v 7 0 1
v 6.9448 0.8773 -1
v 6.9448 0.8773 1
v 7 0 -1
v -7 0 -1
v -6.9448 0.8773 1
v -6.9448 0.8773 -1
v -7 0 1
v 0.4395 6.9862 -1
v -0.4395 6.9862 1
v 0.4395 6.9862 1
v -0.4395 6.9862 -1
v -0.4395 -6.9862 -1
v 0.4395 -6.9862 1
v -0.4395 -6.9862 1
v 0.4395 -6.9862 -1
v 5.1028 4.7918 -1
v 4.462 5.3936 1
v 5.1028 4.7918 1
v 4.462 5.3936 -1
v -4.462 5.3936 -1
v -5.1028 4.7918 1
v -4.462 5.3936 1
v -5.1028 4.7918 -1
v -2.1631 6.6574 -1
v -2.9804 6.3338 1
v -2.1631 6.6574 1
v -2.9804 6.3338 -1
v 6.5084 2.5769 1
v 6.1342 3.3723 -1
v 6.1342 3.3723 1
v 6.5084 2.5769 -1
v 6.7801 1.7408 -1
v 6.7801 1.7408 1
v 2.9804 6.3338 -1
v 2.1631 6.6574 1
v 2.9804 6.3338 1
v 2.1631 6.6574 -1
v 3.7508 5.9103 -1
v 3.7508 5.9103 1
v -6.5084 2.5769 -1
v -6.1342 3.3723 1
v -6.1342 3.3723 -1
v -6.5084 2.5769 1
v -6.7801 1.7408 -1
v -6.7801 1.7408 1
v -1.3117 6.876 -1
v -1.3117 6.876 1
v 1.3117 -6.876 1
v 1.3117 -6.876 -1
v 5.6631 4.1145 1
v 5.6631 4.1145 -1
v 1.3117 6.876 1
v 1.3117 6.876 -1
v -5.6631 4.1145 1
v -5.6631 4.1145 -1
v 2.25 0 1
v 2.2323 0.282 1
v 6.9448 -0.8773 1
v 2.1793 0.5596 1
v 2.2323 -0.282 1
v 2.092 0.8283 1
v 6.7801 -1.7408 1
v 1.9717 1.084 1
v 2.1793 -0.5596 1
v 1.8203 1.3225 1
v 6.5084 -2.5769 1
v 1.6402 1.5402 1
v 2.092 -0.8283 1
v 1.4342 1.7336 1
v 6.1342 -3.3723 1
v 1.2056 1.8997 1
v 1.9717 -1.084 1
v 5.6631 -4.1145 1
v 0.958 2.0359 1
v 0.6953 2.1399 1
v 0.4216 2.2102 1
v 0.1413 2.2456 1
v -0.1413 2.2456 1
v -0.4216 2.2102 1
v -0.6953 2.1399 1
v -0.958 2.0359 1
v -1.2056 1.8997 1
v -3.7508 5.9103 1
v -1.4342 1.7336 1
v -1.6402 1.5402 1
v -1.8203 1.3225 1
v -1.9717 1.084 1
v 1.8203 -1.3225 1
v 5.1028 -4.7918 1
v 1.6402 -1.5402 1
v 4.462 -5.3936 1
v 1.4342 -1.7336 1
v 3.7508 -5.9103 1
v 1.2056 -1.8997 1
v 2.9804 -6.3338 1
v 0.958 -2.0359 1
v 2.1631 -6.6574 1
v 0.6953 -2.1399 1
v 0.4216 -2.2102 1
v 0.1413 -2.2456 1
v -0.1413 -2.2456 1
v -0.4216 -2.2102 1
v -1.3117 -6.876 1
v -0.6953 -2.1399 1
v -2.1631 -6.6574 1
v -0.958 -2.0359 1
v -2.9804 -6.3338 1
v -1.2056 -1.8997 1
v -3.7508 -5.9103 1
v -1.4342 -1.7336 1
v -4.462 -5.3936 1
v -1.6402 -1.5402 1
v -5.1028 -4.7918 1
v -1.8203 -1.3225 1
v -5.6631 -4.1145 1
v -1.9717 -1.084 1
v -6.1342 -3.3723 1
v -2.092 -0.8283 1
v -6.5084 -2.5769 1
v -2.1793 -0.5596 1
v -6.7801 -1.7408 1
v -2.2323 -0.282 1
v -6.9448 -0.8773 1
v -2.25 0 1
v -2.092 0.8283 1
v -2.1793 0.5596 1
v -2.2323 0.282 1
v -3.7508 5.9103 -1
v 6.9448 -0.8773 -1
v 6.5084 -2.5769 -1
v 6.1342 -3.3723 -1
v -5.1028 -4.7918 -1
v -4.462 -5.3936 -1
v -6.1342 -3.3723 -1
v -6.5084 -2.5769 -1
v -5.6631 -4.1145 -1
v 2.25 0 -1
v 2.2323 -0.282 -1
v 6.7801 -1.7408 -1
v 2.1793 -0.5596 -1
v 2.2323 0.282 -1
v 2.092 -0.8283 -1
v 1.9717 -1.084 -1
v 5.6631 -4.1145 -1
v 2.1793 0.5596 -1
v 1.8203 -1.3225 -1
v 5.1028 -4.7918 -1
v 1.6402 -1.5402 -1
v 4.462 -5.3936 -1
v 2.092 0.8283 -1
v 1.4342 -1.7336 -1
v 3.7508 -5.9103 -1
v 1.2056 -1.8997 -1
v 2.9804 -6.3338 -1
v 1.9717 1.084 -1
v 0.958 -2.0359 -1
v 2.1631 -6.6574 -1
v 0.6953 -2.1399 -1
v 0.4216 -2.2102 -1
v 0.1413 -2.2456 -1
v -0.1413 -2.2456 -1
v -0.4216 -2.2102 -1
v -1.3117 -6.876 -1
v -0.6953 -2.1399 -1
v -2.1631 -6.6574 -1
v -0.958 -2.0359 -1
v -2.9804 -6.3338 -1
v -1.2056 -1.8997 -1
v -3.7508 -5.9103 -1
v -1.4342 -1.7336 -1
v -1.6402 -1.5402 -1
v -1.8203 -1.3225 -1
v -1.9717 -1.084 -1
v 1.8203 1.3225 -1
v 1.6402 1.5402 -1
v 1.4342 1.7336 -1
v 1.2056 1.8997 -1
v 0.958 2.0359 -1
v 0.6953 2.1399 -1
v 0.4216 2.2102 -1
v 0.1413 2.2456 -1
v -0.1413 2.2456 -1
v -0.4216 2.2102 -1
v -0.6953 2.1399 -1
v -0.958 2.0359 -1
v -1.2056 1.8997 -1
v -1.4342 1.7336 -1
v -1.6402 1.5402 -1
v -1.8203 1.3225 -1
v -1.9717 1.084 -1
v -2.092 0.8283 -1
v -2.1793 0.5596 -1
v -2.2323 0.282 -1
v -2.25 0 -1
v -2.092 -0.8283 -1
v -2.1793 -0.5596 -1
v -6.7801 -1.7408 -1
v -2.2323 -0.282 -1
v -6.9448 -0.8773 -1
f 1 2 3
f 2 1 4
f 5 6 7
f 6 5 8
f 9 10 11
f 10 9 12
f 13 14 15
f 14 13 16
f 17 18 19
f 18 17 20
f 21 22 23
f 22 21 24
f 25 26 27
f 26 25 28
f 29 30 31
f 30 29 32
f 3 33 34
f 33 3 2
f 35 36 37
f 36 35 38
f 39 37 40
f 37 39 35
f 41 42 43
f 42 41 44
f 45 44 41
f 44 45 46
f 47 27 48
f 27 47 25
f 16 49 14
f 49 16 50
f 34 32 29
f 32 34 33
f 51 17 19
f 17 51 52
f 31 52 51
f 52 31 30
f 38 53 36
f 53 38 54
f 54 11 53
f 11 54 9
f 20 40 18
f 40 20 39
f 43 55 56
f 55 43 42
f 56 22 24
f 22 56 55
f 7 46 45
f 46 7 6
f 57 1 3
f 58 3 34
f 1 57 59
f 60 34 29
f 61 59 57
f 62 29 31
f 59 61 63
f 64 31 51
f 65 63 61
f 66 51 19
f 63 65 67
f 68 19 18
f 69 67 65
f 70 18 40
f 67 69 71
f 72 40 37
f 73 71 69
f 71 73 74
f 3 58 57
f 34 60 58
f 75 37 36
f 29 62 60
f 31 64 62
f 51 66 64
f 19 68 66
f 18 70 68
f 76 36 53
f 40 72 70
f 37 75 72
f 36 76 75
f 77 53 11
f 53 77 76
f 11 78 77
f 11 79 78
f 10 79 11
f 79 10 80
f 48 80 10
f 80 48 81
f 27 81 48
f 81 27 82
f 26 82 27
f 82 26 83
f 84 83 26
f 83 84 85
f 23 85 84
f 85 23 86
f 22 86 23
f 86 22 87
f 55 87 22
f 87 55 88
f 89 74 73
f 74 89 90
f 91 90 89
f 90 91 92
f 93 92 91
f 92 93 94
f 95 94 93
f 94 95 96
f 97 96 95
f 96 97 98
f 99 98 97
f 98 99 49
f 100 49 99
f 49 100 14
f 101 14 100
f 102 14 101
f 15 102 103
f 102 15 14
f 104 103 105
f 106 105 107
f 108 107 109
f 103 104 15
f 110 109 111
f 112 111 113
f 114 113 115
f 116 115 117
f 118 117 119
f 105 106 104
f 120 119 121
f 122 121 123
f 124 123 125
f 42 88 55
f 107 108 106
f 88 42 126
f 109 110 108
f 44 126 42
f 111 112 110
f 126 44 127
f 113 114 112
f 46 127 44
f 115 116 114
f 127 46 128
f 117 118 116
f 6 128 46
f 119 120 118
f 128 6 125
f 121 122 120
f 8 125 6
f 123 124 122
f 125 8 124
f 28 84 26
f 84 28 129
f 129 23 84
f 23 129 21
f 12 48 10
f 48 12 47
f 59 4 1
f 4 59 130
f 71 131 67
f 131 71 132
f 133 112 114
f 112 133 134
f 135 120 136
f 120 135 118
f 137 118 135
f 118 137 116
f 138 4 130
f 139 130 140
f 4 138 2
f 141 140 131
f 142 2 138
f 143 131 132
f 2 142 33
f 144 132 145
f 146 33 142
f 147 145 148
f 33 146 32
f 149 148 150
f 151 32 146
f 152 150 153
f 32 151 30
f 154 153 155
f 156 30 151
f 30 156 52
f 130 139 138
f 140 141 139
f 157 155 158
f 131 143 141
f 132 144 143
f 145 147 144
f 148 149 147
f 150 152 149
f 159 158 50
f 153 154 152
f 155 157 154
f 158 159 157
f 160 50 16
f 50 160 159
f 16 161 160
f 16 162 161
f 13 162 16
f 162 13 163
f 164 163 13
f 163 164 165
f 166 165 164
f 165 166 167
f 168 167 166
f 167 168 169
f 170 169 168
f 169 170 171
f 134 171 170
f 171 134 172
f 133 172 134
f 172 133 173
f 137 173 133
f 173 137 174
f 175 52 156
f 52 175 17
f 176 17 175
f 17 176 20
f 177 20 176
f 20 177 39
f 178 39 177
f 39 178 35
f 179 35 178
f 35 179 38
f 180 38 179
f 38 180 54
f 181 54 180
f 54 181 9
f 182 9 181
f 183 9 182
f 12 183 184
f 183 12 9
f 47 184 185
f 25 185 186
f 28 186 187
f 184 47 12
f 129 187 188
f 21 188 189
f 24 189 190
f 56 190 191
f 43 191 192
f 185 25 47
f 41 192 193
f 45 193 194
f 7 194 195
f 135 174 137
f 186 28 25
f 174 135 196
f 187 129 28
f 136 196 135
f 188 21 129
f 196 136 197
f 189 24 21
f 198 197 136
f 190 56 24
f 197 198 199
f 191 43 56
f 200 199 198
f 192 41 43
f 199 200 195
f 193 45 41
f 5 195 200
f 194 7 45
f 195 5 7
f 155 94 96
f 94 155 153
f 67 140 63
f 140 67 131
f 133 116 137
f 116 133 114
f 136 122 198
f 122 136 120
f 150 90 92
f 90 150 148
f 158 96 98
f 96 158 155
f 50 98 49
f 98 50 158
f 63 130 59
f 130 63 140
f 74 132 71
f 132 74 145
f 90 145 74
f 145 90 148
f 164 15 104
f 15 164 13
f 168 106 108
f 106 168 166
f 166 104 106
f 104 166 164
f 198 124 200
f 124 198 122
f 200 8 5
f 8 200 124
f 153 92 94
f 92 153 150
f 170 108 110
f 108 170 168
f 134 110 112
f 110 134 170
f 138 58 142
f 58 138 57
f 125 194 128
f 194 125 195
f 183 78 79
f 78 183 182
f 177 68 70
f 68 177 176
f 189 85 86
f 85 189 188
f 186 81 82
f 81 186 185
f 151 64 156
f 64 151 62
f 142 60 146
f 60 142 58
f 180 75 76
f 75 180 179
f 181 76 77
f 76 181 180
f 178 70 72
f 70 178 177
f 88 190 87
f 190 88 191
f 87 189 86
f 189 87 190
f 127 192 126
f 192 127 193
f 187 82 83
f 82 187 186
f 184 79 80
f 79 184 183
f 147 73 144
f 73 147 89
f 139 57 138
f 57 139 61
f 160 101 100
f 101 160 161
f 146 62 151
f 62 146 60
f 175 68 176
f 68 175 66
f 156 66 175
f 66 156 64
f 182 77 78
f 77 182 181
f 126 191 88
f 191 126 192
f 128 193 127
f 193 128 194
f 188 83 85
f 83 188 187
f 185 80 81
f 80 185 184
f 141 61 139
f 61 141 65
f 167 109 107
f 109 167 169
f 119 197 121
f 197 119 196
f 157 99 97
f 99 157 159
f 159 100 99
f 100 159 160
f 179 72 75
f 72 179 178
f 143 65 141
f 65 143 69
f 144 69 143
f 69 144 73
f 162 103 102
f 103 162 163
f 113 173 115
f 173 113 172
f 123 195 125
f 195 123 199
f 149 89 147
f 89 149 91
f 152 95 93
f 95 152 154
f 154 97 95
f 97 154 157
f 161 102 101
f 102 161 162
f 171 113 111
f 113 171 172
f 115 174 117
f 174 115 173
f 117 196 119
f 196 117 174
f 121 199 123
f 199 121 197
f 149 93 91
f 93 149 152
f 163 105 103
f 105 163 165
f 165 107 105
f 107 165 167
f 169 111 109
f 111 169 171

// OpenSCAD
$fn = 50;


difference() {
	union() {
		translate(v = [0, 0, -1.0000000000]) {
			cylinder(h = 2, r = 7.0000000000);
		}
	}
	union() {
		translate(v = [0, 0, -100.0000000000]) {
			cylinder(h = 200, r = 2.2500000000);
		}
	}
}
